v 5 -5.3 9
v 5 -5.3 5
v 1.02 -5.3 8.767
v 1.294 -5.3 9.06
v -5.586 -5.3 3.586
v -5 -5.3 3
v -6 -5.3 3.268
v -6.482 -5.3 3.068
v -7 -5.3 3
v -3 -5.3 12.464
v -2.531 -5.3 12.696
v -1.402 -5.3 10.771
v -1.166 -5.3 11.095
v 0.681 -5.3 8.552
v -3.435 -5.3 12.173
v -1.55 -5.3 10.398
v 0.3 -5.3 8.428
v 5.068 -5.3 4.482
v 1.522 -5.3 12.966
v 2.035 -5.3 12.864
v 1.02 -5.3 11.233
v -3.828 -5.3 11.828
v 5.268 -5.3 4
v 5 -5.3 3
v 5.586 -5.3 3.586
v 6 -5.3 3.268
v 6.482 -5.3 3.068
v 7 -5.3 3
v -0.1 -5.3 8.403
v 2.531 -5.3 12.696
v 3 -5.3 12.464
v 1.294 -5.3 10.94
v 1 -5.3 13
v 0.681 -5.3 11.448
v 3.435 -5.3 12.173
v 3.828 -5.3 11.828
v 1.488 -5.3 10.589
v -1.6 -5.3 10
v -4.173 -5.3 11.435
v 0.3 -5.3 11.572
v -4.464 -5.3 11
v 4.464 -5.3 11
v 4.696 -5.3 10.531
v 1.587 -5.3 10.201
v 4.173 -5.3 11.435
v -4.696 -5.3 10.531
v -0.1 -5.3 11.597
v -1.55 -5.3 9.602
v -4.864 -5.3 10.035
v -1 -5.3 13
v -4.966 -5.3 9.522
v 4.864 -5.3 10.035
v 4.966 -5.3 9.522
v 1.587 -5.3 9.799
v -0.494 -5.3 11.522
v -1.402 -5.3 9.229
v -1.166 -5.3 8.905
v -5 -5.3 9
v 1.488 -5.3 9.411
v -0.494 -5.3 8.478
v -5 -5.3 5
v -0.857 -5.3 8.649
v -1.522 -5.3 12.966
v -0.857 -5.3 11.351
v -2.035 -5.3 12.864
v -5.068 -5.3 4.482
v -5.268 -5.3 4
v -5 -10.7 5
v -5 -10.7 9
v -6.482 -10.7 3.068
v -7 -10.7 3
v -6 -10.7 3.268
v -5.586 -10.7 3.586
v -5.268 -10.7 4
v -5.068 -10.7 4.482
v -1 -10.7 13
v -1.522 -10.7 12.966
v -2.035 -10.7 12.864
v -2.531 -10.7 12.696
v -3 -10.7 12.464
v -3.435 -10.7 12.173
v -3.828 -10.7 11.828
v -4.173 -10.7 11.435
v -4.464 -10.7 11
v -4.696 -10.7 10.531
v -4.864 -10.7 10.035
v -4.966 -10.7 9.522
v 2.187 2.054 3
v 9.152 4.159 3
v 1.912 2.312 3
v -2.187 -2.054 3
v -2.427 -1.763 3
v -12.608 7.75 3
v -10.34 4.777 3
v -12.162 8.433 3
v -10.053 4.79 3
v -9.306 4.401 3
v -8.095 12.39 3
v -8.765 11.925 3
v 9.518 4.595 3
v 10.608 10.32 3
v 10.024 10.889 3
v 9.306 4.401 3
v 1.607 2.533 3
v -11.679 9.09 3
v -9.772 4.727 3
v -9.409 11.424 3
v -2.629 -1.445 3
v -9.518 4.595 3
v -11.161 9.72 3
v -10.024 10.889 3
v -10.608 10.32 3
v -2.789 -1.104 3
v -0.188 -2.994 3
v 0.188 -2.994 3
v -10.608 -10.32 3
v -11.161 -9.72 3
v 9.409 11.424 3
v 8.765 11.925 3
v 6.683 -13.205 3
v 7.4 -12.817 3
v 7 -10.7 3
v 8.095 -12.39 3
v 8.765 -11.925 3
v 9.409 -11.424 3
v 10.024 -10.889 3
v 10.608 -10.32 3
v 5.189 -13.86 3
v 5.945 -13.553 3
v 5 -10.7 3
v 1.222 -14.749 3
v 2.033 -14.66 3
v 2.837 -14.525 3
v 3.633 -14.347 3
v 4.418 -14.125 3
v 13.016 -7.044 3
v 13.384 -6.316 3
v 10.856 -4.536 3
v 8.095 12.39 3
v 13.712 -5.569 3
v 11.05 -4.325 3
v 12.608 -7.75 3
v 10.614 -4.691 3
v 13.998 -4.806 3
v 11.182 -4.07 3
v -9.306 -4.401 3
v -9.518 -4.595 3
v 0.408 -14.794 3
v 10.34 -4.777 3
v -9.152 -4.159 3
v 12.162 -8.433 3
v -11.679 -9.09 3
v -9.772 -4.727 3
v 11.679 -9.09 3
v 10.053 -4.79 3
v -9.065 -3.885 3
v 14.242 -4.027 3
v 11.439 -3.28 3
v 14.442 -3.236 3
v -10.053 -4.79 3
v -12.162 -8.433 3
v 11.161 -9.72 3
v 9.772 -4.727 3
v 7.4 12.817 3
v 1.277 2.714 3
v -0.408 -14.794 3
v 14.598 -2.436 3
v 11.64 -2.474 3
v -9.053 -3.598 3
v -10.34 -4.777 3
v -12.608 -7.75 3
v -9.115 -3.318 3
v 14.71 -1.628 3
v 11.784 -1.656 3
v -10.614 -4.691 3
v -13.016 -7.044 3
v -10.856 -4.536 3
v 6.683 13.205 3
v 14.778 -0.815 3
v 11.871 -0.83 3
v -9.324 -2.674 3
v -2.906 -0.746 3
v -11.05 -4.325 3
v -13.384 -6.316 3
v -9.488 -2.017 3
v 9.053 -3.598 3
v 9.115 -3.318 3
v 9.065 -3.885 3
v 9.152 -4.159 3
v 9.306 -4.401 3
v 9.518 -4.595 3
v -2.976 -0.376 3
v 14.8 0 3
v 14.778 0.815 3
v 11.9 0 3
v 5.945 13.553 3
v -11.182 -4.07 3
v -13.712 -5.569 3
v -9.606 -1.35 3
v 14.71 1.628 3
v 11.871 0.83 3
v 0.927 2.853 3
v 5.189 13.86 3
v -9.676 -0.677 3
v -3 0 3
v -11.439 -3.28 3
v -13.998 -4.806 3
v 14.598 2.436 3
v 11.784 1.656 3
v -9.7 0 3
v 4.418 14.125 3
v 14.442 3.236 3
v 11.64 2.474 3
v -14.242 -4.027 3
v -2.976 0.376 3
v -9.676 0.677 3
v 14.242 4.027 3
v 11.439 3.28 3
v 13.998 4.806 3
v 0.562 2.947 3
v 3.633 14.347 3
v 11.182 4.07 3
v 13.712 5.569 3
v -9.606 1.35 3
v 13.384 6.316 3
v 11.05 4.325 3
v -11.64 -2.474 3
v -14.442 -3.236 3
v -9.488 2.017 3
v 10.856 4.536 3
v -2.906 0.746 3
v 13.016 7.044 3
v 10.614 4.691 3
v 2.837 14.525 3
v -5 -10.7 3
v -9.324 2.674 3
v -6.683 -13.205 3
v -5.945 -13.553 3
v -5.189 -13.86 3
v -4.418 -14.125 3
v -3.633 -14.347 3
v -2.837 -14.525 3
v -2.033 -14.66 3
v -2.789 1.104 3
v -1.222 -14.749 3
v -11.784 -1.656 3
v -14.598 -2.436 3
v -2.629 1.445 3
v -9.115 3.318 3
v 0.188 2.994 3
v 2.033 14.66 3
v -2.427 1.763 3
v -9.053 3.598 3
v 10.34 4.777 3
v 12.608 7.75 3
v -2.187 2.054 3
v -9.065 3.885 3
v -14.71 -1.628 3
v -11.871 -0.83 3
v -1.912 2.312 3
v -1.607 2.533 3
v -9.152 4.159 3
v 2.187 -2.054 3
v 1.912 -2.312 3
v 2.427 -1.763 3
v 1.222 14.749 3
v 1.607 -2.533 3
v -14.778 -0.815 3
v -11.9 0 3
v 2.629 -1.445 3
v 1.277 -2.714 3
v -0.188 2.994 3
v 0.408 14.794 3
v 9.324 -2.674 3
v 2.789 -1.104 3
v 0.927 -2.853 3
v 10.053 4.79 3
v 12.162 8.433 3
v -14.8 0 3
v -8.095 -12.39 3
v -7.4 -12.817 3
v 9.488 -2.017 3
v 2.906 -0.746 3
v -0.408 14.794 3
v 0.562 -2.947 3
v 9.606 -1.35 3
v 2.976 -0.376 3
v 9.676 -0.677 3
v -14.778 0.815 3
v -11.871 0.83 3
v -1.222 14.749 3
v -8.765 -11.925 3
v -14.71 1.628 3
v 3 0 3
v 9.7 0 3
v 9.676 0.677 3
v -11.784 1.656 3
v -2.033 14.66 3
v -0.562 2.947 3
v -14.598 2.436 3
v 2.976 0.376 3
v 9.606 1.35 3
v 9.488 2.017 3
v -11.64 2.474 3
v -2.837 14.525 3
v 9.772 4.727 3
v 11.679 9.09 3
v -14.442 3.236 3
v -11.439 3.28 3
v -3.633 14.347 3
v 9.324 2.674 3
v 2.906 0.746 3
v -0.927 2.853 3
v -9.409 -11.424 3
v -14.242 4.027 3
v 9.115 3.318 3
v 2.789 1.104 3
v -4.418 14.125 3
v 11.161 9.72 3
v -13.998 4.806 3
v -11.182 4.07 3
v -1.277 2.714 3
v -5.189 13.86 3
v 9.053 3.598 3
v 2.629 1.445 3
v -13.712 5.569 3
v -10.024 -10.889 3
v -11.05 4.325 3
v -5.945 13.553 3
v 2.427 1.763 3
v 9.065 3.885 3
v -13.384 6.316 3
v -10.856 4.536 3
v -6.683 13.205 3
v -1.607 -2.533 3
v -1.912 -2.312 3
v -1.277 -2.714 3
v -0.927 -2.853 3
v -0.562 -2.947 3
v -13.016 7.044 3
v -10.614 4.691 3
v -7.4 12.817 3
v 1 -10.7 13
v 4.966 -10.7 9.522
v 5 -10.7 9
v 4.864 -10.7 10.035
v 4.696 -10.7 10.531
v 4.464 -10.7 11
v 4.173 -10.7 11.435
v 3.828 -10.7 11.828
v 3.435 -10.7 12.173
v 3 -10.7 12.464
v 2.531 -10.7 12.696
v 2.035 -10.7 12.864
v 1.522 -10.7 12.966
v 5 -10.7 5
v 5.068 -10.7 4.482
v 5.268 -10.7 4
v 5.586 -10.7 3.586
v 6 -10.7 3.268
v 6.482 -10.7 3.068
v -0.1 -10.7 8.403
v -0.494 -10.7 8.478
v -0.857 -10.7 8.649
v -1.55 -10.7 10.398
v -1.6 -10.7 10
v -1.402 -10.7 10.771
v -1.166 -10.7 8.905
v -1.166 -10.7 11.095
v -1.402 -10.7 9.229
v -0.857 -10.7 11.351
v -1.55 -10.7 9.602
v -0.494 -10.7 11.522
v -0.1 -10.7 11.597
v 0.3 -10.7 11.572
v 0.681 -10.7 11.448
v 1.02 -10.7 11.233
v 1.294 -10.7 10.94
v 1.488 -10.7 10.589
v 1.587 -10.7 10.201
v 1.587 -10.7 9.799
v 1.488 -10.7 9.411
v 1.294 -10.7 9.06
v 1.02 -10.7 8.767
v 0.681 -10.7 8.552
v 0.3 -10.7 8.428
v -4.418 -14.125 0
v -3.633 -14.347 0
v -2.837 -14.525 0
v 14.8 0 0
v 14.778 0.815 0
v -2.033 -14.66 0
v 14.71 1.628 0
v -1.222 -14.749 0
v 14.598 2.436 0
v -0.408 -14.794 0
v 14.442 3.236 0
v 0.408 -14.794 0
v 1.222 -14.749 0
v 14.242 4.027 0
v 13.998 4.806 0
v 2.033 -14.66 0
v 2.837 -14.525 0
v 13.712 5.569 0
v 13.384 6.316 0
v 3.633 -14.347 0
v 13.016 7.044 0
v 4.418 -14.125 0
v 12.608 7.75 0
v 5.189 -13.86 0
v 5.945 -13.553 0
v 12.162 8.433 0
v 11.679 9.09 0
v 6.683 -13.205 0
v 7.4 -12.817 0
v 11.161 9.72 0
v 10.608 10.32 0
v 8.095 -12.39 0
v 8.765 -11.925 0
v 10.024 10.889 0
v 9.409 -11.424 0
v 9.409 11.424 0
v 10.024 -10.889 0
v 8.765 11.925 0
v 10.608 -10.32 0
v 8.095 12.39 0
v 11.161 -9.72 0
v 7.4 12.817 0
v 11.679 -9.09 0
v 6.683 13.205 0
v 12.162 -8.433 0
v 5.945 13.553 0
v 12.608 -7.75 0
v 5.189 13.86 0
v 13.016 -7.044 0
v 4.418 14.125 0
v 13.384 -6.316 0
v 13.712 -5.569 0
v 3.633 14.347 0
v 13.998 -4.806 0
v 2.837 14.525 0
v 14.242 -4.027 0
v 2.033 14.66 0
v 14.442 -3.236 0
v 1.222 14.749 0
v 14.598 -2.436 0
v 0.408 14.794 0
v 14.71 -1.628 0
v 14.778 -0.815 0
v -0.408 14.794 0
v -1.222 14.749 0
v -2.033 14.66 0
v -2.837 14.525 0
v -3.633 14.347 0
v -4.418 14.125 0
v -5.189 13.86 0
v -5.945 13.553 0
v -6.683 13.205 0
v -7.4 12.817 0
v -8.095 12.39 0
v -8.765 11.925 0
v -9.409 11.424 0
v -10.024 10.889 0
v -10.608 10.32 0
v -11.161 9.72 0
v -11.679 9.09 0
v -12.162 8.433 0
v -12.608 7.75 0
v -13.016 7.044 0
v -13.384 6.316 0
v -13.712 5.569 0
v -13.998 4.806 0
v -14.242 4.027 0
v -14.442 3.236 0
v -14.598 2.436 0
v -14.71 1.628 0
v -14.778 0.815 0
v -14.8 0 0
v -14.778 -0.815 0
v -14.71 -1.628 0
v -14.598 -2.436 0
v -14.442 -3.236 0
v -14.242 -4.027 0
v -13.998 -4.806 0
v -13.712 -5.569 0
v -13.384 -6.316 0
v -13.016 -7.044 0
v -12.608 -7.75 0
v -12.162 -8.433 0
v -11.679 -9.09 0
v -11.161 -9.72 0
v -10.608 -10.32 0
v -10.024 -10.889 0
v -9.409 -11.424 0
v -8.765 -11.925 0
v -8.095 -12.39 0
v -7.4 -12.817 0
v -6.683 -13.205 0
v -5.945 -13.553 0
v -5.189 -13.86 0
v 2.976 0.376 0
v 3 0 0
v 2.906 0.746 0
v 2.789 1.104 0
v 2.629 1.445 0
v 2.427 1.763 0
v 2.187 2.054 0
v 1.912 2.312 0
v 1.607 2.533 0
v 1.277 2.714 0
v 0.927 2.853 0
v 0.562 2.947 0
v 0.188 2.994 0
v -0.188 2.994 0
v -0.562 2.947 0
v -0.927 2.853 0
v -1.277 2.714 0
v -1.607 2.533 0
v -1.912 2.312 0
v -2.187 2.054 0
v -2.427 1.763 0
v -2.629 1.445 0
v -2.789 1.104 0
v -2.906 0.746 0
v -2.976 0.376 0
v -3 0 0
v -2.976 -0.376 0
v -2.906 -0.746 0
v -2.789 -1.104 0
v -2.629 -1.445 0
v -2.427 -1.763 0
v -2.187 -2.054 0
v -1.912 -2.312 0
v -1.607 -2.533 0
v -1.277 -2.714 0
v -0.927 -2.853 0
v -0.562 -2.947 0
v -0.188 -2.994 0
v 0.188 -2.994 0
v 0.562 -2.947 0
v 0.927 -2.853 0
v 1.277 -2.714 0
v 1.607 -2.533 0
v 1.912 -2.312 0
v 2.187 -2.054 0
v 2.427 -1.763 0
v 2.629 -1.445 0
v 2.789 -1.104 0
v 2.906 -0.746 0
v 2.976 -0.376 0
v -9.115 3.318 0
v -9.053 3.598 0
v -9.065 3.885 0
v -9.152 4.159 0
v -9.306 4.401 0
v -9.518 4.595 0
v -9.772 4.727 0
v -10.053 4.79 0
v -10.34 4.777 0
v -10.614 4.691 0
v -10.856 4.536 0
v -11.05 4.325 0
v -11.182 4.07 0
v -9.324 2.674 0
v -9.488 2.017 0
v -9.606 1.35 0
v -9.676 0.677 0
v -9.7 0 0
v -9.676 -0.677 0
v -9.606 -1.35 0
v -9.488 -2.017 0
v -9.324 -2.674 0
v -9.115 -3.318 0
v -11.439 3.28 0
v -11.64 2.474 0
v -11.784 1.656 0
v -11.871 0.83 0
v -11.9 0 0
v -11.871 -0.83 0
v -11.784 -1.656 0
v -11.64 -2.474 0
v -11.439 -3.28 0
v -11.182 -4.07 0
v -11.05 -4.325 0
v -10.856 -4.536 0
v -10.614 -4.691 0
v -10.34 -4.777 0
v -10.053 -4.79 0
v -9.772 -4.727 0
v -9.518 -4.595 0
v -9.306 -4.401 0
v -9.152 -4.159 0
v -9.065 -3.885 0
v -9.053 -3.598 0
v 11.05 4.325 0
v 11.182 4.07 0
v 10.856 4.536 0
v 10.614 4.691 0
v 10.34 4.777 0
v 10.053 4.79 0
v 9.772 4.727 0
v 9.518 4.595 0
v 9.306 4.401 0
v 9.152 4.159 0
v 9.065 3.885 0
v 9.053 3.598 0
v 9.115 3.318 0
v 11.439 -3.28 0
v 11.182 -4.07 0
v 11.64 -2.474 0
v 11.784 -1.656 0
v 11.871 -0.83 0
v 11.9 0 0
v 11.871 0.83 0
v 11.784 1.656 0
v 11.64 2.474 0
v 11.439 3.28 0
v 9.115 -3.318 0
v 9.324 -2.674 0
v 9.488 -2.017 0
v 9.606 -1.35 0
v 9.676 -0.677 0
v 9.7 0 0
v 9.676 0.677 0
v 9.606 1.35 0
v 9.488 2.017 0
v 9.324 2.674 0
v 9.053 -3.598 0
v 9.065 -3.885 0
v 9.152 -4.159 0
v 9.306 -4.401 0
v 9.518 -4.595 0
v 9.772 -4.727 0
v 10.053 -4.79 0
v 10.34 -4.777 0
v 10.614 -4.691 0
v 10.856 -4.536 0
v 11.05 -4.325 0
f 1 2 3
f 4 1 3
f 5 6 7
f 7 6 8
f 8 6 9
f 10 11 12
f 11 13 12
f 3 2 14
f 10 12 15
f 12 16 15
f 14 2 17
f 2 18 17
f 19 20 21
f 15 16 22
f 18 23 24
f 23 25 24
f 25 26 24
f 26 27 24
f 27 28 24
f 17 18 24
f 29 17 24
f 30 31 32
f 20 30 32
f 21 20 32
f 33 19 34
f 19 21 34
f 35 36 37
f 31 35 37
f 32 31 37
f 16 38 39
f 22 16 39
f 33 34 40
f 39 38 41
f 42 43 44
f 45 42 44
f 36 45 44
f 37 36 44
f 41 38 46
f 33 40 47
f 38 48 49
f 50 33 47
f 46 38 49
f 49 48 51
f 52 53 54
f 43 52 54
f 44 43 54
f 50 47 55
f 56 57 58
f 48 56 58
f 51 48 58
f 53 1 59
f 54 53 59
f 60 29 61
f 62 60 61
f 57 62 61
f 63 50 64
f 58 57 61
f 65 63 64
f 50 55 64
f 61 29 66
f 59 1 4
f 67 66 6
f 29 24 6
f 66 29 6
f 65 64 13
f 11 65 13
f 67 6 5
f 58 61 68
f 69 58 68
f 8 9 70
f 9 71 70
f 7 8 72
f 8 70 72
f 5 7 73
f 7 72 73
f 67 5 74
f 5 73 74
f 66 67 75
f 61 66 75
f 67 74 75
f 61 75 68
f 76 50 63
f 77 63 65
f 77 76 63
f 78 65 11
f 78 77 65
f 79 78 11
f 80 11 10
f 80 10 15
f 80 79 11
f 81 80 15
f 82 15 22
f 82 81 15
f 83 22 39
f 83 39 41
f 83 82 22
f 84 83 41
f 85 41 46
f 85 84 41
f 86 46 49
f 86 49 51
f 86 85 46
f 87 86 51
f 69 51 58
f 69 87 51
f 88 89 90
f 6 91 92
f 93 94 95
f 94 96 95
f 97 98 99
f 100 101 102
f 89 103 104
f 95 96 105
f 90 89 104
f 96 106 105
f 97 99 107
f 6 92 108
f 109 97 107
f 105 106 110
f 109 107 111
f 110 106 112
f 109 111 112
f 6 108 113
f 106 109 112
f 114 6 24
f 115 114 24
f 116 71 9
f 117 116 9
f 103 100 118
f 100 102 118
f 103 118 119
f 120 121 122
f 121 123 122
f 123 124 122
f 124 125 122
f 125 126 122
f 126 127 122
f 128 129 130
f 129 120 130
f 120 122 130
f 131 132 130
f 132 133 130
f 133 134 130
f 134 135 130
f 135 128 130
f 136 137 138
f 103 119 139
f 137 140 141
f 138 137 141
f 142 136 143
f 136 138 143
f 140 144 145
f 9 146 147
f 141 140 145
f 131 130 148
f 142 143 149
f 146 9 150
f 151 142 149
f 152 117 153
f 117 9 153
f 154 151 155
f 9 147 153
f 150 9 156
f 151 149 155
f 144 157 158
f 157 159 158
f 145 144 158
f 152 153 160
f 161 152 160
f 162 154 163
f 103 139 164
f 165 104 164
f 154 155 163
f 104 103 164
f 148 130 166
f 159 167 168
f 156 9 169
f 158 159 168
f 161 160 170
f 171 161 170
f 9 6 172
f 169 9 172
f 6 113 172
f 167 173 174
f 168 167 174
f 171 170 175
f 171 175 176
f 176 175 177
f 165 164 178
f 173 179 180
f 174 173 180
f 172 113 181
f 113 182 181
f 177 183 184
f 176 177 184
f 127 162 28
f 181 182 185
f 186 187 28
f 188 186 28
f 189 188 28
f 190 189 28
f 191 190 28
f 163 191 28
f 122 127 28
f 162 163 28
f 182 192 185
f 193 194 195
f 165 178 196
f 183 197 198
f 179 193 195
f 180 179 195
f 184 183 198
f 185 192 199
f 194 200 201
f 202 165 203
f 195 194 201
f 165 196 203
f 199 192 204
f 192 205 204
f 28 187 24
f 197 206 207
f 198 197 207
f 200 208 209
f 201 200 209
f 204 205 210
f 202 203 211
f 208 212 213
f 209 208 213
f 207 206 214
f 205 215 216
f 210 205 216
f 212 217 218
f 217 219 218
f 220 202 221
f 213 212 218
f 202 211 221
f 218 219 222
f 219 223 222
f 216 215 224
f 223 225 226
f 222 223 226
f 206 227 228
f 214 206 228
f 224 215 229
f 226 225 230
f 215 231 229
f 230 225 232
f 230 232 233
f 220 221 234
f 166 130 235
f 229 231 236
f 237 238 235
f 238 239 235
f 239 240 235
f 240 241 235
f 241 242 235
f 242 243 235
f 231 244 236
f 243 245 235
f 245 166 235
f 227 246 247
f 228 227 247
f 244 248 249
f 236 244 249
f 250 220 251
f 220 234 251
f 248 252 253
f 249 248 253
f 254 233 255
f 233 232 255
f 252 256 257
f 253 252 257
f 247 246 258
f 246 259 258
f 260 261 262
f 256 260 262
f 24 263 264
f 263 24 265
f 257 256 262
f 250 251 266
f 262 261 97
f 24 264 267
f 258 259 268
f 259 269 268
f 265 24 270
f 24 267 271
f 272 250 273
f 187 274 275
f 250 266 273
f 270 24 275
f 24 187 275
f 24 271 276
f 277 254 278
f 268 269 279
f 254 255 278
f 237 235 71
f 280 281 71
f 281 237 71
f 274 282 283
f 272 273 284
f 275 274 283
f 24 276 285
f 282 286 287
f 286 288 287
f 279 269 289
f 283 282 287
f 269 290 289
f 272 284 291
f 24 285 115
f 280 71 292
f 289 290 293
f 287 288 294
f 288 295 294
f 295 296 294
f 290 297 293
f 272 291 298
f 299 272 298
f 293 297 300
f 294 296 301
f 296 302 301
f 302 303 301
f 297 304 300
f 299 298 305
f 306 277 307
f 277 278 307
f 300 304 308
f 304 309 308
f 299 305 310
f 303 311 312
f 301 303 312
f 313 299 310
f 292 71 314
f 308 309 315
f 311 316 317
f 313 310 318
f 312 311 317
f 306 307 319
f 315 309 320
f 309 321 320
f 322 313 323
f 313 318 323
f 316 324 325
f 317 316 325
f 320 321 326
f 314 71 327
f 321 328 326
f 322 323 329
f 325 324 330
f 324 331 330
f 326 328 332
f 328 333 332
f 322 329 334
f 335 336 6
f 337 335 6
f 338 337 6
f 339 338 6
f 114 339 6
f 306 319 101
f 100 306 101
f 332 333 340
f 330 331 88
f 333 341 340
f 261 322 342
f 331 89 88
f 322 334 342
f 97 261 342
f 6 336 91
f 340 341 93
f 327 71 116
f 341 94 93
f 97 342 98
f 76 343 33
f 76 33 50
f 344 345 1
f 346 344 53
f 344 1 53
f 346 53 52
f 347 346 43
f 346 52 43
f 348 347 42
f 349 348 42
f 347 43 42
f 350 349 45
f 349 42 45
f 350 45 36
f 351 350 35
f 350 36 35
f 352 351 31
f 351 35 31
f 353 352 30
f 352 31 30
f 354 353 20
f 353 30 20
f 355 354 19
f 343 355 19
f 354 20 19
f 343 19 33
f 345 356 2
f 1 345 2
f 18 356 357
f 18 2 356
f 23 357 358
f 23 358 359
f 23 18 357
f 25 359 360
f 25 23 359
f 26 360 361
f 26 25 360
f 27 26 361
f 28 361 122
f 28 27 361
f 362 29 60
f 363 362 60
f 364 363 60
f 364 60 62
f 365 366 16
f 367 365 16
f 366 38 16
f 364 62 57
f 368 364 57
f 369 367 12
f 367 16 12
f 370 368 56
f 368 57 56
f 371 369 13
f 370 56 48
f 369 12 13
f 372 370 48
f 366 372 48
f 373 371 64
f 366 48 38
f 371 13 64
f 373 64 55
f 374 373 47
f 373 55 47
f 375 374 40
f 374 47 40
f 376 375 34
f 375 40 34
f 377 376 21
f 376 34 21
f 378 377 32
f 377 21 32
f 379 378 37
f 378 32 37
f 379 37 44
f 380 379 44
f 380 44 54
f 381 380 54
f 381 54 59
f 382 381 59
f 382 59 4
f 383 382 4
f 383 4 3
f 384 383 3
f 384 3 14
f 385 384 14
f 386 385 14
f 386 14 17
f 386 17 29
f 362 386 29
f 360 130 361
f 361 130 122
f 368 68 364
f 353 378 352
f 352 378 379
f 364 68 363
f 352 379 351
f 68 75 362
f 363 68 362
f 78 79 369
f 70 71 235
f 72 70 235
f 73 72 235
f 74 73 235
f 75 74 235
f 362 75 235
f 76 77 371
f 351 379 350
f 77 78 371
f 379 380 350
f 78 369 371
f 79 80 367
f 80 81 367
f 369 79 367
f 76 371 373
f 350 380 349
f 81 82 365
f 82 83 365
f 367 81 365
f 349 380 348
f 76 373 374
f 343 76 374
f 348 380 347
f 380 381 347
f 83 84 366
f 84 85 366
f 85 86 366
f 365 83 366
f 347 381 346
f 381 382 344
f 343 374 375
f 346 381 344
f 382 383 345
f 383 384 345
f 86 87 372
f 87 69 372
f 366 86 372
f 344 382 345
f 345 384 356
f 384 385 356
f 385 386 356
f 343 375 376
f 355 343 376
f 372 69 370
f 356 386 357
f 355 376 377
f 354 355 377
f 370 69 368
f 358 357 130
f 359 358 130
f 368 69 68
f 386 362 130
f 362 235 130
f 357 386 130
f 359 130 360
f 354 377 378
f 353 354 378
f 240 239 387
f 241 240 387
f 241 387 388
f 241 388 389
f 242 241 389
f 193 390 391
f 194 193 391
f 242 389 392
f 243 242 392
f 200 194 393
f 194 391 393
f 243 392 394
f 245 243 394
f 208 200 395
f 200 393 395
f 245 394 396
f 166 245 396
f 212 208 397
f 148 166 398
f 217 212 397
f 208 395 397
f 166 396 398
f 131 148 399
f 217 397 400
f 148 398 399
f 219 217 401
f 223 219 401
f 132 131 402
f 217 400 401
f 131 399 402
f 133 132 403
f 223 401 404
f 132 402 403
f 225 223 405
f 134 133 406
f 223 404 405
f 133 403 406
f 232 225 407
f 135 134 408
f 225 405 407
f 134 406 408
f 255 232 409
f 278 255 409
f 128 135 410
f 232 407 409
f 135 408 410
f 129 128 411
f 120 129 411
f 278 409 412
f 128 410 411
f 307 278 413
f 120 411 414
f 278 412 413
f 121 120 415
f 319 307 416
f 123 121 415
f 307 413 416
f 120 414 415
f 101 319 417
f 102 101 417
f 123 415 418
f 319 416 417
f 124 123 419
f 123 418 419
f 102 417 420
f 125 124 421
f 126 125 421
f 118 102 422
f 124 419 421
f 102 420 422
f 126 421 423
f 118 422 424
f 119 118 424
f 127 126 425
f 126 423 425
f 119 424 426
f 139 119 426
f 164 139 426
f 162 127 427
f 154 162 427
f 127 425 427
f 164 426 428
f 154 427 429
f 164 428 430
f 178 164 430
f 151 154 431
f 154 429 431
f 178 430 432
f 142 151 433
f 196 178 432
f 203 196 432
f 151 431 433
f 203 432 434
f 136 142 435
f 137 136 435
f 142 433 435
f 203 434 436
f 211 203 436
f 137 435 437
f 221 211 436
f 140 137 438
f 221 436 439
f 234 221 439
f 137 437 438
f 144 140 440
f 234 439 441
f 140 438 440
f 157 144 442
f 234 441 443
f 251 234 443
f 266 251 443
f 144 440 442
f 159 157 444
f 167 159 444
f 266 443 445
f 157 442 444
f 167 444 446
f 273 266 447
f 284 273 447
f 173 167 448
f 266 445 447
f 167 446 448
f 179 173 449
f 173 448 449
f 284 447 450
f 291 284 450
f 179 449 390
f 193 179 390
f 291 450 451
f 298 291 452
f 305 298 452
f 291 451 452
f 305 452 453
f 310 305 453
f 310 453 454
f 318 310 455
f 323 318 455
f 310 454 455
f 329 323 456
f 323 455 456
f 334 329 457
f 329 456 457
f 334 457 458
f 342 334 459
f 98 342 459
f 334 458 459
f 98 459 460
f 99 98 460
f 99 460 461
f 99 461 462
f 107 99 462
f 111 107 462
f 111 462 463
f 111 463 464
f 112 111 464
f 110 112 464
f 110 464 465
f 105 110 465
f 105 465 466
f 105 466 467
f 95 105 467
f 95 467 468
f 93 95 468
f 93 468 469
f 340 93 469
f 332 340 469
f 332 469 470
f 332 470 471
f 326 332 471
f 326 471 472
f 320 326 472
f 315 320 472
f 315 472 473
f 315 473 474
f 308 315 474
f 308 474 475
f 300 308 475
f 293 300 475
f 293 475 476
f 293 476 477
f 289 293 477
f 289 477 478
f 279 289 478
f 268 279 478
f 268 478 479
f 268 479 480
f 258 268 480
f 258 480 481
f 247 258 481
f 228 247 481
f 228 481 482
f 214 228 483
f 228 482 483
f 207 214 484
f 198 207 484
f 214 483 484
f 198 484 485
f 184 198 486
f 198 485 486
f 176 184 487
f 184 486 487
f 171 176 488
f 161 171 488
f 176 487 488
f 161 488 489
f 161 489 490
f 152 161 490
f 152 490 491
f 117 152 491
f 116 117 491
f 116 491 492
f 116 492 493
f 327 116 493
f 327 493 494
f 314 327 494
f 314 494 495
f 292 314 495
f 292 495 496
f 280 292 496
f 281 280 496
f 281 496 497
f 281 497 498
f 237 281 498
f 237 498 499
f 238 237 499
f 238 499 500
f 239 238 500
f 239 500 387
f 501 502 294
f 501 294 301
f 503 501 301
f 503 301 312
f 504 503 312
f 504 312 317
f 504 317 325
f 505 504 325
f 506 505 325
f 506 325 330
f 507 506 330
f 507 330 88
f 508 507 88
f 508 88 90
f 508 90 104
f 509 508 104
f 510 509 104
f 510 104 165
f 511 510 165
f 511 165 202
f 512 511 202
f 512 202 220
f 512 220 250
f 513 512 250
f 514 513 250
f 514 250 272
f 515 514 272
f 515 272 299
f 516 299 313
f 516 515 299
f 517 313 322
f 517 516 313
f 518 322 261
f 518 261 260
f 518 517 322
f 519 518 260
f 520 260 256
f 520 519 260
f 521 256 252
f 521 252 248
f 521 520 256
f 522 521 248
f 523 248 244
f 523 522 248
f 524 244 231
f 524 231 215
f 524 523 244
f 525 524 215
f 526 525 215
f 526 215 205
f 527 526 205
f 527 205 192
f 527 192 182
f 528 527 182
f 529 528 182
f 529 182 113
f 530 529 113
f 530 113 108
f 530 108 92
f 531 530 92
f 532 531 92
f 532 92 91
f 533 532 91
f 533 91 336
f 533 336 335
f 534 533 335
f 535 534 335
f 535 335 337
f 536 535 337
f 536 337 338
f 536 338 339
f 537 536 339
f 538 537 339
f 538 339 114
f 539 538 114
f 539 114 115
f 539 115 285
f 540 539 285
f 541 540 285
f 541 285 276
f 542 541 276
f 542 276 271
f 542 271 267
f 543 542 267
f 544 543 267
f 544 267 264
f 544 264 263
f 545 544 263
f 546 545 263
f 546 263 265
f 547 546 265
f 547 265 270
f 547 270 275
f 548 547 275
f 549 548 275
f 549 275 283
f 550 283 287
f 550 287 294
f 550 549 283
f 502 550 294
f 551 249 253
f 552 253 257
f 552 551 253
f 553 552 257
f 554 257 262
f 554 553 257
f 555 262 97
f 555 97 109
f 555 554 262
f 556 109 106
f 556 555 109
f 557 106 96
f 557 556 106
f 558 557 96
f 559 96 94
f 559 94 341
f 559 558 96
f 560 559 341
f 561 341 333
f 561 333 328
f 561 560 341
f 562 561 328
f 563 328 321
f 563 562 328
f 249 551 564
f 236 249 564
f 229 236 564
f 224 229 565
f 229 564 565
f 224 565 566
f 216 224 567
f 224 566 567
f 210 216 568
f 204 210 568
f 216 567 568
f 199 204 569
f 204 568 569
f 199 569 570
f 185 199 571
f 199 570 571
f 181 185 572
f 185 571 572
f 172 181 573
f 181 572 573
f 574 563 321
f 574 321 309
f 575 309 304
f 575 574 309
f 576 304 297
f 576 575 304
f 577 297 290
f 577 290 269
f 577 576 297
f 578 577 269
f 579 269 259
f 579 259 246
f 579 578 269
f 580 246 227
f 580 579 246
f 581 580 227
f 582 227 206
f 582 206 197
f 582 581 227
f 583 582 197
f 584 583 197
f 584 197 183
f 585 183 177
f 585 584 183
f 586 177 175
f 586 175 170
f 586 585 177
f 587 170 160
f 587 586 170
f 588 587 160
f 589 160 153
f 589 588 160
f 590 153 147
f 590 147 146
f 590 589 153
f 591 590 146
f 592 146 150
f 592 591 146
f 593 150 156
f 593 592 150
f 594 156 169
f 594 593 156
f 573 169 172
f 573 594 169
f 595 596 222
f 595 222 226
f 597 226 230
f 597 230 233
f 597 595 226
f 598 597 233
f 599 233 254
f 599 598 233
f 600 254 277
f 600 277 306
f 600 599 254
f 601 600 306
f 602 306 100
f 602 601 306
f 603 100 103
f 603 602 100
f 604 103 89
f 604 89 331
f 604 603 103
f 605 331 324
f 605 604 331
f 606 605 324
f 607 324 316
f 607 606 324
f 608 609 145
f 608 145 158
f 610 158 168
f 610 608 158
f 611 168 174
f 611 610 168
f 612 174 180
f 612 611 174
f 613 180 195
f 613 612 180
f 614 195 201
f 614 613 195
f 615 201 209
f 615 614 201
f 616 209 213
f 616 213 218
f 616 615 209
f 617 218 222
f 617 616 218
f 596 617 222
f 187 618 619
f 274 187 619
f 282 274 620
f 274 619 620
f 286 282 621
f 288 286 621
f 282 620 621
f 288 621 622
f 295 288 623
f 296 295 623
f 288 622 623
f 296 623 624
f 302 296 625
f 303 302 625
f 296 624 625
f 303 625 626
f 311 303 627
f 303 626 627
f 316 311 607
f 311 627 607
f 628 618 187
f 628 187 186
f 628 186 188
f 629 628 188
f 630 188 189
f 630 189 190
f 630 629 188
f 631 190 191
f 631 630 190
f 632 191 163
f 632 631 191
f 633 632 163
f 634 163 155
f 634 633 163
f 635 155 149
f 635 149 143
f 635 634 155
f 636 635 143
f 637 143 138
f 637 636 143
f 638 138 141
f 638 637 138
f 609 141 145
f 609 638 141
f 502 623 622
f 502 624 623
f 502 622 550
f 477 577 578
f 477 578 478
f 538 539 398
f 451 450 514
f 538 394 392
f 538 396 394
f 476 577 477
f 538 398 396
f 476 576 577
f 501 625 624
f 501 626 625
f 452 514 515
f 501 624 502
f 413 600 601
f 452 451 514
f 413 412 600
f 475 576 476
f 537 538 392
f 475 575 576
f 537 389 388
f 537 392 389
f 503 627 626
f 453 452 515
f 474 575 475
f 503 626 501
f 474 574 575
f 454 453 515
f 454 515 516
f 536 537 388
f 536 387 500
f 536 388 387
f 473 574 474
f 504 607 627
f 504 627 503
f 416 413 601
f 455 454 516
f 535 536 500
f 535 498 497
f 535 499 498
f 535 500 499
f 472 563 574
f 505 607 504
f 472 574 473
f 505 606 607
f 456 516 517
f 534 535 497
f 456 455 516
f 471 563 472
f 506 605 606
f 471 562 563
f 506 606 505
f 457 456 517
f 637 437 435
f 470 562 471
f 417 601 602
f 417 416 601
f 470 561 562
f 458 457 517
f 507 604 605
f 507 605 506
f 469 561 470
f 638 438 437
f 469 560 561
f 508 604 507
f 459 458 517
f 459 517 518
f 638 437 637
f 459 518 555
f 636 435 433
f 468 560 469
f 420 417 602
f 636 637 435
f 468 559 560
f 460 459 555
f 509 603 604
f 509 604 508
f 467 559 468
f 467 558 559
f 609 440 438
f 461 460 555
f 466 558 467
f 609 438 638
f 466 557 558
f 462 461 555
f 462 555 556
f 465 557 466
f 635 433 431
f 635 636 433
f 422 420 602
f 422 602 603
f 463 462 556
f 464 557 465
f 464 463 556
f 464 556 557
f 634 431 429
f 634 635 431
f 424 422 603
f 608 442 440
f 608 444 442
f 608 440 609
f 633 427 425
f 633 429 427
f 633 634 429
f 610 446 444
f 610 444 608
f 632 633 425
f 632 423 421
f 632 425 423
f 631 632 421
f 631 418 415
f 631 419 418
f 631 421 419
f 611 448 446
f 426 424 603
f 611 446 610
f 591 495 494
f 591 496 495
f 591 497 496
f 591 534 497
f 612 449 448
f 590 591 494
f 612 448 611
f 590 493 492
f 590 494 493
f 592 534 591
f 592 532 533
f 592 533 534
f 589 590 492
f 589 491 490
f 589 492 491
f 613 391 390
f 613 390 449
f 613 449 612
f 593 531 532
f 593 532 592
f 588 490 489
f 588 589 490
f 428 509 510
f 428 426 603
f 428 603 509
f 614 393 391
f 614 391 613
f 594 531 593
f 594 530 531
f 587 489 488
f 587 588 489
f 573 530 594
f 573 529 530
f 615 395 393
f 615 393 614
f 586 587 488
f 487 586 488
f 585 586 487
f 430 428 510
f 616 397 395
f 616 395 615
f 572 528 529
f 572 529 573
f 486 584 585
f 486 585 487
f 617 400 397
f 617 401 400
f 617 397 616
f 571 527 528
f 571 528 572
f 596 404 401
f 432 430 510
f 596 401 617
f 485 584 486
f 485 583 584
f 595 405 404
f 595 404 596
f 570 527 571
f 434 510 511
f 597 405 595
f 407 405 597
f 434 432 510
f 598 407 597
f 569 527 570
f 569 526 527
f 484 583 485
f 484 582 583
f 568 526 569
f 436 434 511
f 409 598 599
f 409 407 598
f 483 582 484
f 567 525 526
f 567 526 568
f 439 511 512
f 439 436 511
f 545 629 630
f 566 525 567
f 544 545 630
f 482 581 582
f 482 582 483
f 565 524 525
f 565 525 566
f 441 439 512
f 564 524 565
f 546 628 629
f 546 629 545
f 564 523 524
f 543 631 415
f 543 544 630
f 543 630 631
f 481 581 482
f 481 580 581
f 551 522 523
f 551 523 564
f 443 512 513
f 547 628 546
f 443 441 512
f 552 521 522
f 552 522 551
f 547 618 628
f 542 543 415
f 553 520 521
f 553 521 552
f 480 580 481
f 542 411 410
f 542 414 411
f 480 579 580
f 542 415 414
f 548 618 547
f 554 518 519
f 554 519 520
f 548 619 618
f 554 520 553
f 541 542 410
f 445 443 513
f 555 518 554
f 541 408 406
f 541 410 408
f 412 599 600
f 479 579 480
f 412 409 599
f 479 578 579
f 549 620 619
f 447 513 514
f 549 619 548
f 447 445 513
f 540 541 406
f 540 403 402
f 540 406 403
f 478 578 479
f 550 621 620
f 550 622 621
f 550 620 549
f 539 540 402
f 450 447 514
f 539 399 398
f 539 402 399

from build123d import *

# Parameters (mm, degrees)
SKETCH_R     = 14.8
SKETCH_R_2   = 3
PAD_DEPTH    = 3
SKETCH002_W  = 10
SKETCH002_H  = 5.4
PAD001_DEPTH = 10
SKETCH003_R  = 1.6
POCKET_DEPTH = 5.4
FILLET_R     = 4
FILLET001_R  = 4
FILLET002_R  = 2
FILLET003_R  = 2


with BuildPart() as part:
    # Sketch → Pad (new body)
    with BuildSketch(Plane.XY):
        Circle(SKETCH_R)
        Circle(SKETCH_R_2, mode=Mode.SUBTRACT)
        with BuildLine():
            ThreePointArc((-9.115018, 3.317595), (-9.772458, 4.727479), (-11.182342, 4.07004))
            ThreePointArc((-11.182342, 4.07004), (-11.9, 0), (-11.182342, -4.07004))
            ThreePointArc((-11.182342, -4.07004), (-9.772458, -4.727479), (-9.115018, -3.317595))
            ThreePointArc((-9.115018, 3.317595), (-9.7, 0), (-9.115018, -3.317595))
        make_face(mode=Mode.SUBTRACT)
        with BuildLine():
            ThreePointArc((11.182342, 4.07004), (9.772458, 4.727479), (9.115018, 3.317595))
            ThreePointArc((9.115018, -3.317595), (9.7, 0), (9.115018, 3.317595))
            ThreePointArc((9.115018, -3.317595), (9.772458, -4.727479), (11.182342, -4.07004))
            ThreePointArc((11.182342, -4.07004), (11.9, 0), (11.182342, 4.07004))
        make_face(mode=Mode.SUBTRACT)
    extrude(amount=PAD_DEPTH)

    # Sketch002 → Pad001 (new body)
    with BuildSketch(Plane.XY.offset(3)):
        with Locations((0, -8)):
            Rectangle(SKETCH002_W, SKETCH002_H)
    extrude(amount=PAD001_DEPTH)

    # Sketch003 → Pocket (cut)
    with BuildSketch(Plane(origin=(0, -5.3, 0), x_dir=(-1, 0, 0), z_dir=(0, 1, 0))):
        with Locations((0, 10)):
            Circle(SKETCH003_R)
    extrude(amount=-POCKET_DEPTH, mode=Mode.SUBTRACT)

    # Fillet
    fillet_edges = [part.edges().sort_by_distance(p)[0] for p in [
        (5, -8, 13),
    ]]
    fillet(fillet_edges, radius=FILLET_R)

    # Fillet001
    fillet001_edges = [part.edges().sort_by_distance(p)[0] for p in [
        (-5, -8, 13),
    ]]
    fillet(fillet001_edges, radius=FILLET001_R)

    # Fillet002
    fillet002_edges = [part.edges().sort_by_distance(p)[0] for p in [
        (5, -8, 3),
    ]]
    fillet(fillet002_edges, radius=FILLET002_R)

    # Fillet003
    fillet003_edges = [part.edges().sort_by_distance(p)[0] for p in [
        (-5, -8, 3),
    ]]
    fillet(fillet003_edges, radius=FILLET003_R)


solid = part.part
